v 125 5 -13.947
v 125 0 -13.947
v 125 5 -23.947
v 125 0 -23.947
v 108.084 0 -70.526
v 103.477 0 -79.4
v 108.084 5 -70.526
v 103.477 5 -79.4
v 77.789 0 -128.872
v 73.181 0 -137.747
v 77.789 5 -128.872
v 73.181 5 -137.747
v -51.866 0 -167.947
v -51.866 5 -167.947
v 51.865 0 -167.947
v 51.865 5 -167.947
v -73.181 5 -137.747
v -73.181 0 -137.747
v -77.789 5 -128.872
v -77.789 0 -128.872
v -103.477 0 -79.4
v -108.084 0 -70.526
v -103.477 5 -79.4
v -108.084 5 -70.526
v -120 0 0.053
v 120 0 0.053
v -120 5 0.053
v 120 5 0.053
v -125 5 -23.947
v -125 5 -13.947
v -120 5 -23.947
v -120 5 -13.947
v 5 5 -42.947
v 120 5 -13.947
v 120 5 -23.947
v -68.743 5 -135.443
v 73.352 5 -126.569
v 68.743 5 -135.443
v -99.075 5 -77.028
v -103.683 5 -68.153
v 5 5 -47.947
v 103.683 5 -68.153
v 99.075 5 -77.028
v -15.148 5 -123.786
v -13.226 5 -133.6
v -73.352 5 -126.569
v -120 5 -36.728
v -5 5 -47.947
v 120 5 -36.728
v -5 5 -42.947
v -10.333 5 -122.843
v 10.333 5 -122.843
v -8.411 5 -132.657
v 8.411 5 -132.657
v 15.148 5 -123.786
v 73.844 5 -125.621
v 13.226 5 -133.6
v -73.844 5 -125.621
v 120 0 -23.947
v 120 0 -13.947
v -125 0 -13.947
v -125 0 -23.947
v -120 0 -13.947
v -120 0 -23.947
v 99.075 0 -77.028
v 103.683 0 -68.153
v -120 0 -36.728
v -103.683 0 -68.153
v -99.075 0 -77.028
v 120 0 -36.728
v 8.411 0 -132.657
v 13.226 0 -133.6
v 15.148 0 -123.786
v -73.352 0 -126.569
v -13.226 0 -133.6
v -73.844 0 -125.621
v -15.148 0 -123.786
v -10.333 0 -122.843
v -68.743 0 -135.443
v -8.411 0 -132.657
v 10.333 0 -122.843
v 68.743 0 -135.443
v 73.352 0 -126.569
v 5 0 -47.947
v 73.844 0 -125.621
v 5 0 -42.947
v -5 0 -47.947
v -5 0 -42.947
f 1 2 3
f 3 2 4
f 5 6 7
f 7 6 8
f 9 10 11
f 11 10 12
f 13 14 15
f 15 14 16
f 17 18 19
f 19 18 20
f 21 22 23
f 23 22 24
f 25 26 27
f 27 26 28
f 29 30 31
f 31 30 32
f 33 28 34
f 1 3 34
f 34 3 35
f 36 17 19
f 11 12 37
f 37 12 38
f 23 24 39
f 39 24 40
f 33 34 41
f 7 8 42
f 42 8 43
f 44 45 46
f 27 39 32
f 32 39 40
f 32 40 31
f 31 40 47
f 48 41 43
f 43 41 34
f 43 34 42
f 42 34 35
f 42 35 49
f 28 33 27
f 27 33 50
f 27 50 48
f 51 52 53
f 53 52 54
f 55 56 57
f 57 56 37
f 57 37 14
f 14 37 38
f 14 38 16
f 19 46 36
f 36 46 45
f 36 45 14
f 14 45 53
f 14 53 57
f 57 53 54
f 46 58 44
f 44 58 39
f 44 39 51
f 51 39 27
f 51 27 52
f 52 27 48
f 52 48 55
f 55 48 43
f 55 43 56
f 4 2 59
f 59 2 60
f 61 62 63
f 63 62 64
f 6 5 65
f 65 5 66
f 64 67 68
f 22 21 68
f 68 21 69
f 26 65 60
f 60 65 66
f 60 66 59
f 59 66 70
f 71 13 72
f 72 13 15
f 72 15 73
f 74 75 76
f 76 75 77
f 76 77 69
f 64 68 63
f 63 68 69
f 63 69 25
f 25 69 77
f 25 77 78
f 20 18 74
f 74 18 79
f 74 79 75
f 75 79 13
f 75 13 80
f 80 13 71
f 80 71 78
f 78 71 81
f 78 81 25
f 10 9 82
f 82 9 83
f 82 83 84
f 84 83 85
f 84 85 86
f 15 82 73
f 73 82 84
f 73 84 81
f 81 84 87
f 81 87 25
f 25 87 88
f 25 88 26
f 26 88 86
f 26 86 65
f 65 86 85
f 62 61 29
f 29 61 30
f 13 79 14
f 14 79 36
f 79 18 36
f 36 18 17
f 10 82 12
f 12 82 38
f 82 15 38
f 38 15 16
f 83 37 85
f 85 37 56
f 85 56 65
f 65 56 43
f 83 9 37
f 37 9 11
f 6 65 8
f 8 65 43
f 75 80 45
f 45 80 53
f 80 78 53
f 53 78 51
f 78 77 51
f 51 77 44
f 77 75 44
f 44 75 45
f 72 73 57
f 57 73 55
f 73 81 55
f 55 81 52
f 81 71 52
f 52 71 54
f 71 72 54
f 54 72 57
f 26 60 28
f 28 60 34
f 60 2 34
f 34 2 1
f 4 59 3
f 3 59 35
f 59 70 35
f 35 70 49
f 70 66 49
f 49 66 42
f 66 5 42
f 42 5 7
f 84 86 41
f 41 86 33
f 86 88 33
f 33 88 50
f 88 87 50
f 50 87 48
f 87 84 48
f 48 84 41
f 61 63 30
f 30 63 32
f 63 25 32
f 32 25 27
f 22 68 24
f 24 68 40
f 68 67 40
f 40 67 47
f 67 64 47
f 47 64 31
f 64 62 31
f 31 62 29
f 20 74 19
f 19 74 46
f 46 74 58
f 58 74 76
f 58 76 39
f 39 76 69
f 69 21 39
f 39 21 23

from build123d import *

# Parameters (mm, degrees)
BOSS_EXTRUDE1_DEPTH = 5
SKETCH2_W           = 5
SKETCH2_H           = 14
SKETCH2_W_2         = 10
SKETCH2_H_2         = 5
CUT_EXTRUDE1_DEPTH  = 210.418973113


with BuildPart() as part:
    # Sketch1 → Boss-Extrude1 (new body)
    with BuildSketch(Plane(origin=(0, 0, 0), x_dir=(1, 0, 0), z_dir=(0, 1, 0))):
        Polygon((-57.5, 167.947331922), (57.5, 167.947331922), (125, 37.947331922), (125, -0.052668078), (-125, -0.052668078), (-125, 37.947331922), align=None)
    extrude(amount=BOSS_EXTRUDE1_DEPTH)

    # Sketch2 → Cut-Extrude1 (cut, through all)
    with BuildSketch(Plane(origin=(0, 5, 0), x_dir=(1, 0, 0), z_dir=(0, 1, 0))):
        Polygon((-77.788864465, 128.872481842), (-103.476511391, 79.39997665), (-99.075067661, 77.027785029), (-73.843707474, 125.621215804), (-73.351788432, 126.56861544), align=None)
        Polygon((-125, 37.947331922), (-125, 23.947331922), (-120, 23.947331922), (-120, 36.728164098), (-103.683242772, 68.152835894), (-108.083917213, 70.526454327), align=None)
        with Locations((-122.5, 6.947331922)):
            Rectangle(SKETCH2_W, SKETCH2_H)
        with Locations((0, 45.447331922)):
            Rectangle(SKETCH2_W_2, SKETCH2_H_2)
        Polygon((-8.411070301, 132.656760174), (-13.226399097, 133.599762064), (-15.148227411, 123.786170675), (-10.332898614, 122.843168786), align=None)
        Polygon((10.332898614, 122.843168786), (15.148227411, 123.786170675), (13.226399097, 133.599762064), (8.411070301, 132.656760174), align=None)
        Polygon((-73.180711758, 137.74744261), (-68.74270223, 135.443091446), (-51.865499988, 167.947331922), (-57.5, 167.947331922), align=None)
        Polygon((73.351788432, 126.56861544), (73.843707474, 125.621215804), (99.075067661, 77.027785029), (103.476511391, 79.39997665), (77.788864465, 128.872481842), align=None)
        Polygon((68.74270223, 135.443091446), (73.180711758, 137.74744261), (57.5, 167.947331922), (51.865499988, 167.947331922), align=None)
        with Locations((122.5, 6.947331922)):
            Rectangle(SKETCH2_W, SKETCH2_H)
        Polygon((125, 23.947331922), (125, 37.947331922), (108.083917213, 70.526454327), (103.683242772, 68.152835894), (120, 36.728164098), (120, 23.947331922), align=None)
    extrude(amount=-CUT_EXTRUDE1_DEPTH, mode=Mode.SUBTRACT)


solid = part.part
